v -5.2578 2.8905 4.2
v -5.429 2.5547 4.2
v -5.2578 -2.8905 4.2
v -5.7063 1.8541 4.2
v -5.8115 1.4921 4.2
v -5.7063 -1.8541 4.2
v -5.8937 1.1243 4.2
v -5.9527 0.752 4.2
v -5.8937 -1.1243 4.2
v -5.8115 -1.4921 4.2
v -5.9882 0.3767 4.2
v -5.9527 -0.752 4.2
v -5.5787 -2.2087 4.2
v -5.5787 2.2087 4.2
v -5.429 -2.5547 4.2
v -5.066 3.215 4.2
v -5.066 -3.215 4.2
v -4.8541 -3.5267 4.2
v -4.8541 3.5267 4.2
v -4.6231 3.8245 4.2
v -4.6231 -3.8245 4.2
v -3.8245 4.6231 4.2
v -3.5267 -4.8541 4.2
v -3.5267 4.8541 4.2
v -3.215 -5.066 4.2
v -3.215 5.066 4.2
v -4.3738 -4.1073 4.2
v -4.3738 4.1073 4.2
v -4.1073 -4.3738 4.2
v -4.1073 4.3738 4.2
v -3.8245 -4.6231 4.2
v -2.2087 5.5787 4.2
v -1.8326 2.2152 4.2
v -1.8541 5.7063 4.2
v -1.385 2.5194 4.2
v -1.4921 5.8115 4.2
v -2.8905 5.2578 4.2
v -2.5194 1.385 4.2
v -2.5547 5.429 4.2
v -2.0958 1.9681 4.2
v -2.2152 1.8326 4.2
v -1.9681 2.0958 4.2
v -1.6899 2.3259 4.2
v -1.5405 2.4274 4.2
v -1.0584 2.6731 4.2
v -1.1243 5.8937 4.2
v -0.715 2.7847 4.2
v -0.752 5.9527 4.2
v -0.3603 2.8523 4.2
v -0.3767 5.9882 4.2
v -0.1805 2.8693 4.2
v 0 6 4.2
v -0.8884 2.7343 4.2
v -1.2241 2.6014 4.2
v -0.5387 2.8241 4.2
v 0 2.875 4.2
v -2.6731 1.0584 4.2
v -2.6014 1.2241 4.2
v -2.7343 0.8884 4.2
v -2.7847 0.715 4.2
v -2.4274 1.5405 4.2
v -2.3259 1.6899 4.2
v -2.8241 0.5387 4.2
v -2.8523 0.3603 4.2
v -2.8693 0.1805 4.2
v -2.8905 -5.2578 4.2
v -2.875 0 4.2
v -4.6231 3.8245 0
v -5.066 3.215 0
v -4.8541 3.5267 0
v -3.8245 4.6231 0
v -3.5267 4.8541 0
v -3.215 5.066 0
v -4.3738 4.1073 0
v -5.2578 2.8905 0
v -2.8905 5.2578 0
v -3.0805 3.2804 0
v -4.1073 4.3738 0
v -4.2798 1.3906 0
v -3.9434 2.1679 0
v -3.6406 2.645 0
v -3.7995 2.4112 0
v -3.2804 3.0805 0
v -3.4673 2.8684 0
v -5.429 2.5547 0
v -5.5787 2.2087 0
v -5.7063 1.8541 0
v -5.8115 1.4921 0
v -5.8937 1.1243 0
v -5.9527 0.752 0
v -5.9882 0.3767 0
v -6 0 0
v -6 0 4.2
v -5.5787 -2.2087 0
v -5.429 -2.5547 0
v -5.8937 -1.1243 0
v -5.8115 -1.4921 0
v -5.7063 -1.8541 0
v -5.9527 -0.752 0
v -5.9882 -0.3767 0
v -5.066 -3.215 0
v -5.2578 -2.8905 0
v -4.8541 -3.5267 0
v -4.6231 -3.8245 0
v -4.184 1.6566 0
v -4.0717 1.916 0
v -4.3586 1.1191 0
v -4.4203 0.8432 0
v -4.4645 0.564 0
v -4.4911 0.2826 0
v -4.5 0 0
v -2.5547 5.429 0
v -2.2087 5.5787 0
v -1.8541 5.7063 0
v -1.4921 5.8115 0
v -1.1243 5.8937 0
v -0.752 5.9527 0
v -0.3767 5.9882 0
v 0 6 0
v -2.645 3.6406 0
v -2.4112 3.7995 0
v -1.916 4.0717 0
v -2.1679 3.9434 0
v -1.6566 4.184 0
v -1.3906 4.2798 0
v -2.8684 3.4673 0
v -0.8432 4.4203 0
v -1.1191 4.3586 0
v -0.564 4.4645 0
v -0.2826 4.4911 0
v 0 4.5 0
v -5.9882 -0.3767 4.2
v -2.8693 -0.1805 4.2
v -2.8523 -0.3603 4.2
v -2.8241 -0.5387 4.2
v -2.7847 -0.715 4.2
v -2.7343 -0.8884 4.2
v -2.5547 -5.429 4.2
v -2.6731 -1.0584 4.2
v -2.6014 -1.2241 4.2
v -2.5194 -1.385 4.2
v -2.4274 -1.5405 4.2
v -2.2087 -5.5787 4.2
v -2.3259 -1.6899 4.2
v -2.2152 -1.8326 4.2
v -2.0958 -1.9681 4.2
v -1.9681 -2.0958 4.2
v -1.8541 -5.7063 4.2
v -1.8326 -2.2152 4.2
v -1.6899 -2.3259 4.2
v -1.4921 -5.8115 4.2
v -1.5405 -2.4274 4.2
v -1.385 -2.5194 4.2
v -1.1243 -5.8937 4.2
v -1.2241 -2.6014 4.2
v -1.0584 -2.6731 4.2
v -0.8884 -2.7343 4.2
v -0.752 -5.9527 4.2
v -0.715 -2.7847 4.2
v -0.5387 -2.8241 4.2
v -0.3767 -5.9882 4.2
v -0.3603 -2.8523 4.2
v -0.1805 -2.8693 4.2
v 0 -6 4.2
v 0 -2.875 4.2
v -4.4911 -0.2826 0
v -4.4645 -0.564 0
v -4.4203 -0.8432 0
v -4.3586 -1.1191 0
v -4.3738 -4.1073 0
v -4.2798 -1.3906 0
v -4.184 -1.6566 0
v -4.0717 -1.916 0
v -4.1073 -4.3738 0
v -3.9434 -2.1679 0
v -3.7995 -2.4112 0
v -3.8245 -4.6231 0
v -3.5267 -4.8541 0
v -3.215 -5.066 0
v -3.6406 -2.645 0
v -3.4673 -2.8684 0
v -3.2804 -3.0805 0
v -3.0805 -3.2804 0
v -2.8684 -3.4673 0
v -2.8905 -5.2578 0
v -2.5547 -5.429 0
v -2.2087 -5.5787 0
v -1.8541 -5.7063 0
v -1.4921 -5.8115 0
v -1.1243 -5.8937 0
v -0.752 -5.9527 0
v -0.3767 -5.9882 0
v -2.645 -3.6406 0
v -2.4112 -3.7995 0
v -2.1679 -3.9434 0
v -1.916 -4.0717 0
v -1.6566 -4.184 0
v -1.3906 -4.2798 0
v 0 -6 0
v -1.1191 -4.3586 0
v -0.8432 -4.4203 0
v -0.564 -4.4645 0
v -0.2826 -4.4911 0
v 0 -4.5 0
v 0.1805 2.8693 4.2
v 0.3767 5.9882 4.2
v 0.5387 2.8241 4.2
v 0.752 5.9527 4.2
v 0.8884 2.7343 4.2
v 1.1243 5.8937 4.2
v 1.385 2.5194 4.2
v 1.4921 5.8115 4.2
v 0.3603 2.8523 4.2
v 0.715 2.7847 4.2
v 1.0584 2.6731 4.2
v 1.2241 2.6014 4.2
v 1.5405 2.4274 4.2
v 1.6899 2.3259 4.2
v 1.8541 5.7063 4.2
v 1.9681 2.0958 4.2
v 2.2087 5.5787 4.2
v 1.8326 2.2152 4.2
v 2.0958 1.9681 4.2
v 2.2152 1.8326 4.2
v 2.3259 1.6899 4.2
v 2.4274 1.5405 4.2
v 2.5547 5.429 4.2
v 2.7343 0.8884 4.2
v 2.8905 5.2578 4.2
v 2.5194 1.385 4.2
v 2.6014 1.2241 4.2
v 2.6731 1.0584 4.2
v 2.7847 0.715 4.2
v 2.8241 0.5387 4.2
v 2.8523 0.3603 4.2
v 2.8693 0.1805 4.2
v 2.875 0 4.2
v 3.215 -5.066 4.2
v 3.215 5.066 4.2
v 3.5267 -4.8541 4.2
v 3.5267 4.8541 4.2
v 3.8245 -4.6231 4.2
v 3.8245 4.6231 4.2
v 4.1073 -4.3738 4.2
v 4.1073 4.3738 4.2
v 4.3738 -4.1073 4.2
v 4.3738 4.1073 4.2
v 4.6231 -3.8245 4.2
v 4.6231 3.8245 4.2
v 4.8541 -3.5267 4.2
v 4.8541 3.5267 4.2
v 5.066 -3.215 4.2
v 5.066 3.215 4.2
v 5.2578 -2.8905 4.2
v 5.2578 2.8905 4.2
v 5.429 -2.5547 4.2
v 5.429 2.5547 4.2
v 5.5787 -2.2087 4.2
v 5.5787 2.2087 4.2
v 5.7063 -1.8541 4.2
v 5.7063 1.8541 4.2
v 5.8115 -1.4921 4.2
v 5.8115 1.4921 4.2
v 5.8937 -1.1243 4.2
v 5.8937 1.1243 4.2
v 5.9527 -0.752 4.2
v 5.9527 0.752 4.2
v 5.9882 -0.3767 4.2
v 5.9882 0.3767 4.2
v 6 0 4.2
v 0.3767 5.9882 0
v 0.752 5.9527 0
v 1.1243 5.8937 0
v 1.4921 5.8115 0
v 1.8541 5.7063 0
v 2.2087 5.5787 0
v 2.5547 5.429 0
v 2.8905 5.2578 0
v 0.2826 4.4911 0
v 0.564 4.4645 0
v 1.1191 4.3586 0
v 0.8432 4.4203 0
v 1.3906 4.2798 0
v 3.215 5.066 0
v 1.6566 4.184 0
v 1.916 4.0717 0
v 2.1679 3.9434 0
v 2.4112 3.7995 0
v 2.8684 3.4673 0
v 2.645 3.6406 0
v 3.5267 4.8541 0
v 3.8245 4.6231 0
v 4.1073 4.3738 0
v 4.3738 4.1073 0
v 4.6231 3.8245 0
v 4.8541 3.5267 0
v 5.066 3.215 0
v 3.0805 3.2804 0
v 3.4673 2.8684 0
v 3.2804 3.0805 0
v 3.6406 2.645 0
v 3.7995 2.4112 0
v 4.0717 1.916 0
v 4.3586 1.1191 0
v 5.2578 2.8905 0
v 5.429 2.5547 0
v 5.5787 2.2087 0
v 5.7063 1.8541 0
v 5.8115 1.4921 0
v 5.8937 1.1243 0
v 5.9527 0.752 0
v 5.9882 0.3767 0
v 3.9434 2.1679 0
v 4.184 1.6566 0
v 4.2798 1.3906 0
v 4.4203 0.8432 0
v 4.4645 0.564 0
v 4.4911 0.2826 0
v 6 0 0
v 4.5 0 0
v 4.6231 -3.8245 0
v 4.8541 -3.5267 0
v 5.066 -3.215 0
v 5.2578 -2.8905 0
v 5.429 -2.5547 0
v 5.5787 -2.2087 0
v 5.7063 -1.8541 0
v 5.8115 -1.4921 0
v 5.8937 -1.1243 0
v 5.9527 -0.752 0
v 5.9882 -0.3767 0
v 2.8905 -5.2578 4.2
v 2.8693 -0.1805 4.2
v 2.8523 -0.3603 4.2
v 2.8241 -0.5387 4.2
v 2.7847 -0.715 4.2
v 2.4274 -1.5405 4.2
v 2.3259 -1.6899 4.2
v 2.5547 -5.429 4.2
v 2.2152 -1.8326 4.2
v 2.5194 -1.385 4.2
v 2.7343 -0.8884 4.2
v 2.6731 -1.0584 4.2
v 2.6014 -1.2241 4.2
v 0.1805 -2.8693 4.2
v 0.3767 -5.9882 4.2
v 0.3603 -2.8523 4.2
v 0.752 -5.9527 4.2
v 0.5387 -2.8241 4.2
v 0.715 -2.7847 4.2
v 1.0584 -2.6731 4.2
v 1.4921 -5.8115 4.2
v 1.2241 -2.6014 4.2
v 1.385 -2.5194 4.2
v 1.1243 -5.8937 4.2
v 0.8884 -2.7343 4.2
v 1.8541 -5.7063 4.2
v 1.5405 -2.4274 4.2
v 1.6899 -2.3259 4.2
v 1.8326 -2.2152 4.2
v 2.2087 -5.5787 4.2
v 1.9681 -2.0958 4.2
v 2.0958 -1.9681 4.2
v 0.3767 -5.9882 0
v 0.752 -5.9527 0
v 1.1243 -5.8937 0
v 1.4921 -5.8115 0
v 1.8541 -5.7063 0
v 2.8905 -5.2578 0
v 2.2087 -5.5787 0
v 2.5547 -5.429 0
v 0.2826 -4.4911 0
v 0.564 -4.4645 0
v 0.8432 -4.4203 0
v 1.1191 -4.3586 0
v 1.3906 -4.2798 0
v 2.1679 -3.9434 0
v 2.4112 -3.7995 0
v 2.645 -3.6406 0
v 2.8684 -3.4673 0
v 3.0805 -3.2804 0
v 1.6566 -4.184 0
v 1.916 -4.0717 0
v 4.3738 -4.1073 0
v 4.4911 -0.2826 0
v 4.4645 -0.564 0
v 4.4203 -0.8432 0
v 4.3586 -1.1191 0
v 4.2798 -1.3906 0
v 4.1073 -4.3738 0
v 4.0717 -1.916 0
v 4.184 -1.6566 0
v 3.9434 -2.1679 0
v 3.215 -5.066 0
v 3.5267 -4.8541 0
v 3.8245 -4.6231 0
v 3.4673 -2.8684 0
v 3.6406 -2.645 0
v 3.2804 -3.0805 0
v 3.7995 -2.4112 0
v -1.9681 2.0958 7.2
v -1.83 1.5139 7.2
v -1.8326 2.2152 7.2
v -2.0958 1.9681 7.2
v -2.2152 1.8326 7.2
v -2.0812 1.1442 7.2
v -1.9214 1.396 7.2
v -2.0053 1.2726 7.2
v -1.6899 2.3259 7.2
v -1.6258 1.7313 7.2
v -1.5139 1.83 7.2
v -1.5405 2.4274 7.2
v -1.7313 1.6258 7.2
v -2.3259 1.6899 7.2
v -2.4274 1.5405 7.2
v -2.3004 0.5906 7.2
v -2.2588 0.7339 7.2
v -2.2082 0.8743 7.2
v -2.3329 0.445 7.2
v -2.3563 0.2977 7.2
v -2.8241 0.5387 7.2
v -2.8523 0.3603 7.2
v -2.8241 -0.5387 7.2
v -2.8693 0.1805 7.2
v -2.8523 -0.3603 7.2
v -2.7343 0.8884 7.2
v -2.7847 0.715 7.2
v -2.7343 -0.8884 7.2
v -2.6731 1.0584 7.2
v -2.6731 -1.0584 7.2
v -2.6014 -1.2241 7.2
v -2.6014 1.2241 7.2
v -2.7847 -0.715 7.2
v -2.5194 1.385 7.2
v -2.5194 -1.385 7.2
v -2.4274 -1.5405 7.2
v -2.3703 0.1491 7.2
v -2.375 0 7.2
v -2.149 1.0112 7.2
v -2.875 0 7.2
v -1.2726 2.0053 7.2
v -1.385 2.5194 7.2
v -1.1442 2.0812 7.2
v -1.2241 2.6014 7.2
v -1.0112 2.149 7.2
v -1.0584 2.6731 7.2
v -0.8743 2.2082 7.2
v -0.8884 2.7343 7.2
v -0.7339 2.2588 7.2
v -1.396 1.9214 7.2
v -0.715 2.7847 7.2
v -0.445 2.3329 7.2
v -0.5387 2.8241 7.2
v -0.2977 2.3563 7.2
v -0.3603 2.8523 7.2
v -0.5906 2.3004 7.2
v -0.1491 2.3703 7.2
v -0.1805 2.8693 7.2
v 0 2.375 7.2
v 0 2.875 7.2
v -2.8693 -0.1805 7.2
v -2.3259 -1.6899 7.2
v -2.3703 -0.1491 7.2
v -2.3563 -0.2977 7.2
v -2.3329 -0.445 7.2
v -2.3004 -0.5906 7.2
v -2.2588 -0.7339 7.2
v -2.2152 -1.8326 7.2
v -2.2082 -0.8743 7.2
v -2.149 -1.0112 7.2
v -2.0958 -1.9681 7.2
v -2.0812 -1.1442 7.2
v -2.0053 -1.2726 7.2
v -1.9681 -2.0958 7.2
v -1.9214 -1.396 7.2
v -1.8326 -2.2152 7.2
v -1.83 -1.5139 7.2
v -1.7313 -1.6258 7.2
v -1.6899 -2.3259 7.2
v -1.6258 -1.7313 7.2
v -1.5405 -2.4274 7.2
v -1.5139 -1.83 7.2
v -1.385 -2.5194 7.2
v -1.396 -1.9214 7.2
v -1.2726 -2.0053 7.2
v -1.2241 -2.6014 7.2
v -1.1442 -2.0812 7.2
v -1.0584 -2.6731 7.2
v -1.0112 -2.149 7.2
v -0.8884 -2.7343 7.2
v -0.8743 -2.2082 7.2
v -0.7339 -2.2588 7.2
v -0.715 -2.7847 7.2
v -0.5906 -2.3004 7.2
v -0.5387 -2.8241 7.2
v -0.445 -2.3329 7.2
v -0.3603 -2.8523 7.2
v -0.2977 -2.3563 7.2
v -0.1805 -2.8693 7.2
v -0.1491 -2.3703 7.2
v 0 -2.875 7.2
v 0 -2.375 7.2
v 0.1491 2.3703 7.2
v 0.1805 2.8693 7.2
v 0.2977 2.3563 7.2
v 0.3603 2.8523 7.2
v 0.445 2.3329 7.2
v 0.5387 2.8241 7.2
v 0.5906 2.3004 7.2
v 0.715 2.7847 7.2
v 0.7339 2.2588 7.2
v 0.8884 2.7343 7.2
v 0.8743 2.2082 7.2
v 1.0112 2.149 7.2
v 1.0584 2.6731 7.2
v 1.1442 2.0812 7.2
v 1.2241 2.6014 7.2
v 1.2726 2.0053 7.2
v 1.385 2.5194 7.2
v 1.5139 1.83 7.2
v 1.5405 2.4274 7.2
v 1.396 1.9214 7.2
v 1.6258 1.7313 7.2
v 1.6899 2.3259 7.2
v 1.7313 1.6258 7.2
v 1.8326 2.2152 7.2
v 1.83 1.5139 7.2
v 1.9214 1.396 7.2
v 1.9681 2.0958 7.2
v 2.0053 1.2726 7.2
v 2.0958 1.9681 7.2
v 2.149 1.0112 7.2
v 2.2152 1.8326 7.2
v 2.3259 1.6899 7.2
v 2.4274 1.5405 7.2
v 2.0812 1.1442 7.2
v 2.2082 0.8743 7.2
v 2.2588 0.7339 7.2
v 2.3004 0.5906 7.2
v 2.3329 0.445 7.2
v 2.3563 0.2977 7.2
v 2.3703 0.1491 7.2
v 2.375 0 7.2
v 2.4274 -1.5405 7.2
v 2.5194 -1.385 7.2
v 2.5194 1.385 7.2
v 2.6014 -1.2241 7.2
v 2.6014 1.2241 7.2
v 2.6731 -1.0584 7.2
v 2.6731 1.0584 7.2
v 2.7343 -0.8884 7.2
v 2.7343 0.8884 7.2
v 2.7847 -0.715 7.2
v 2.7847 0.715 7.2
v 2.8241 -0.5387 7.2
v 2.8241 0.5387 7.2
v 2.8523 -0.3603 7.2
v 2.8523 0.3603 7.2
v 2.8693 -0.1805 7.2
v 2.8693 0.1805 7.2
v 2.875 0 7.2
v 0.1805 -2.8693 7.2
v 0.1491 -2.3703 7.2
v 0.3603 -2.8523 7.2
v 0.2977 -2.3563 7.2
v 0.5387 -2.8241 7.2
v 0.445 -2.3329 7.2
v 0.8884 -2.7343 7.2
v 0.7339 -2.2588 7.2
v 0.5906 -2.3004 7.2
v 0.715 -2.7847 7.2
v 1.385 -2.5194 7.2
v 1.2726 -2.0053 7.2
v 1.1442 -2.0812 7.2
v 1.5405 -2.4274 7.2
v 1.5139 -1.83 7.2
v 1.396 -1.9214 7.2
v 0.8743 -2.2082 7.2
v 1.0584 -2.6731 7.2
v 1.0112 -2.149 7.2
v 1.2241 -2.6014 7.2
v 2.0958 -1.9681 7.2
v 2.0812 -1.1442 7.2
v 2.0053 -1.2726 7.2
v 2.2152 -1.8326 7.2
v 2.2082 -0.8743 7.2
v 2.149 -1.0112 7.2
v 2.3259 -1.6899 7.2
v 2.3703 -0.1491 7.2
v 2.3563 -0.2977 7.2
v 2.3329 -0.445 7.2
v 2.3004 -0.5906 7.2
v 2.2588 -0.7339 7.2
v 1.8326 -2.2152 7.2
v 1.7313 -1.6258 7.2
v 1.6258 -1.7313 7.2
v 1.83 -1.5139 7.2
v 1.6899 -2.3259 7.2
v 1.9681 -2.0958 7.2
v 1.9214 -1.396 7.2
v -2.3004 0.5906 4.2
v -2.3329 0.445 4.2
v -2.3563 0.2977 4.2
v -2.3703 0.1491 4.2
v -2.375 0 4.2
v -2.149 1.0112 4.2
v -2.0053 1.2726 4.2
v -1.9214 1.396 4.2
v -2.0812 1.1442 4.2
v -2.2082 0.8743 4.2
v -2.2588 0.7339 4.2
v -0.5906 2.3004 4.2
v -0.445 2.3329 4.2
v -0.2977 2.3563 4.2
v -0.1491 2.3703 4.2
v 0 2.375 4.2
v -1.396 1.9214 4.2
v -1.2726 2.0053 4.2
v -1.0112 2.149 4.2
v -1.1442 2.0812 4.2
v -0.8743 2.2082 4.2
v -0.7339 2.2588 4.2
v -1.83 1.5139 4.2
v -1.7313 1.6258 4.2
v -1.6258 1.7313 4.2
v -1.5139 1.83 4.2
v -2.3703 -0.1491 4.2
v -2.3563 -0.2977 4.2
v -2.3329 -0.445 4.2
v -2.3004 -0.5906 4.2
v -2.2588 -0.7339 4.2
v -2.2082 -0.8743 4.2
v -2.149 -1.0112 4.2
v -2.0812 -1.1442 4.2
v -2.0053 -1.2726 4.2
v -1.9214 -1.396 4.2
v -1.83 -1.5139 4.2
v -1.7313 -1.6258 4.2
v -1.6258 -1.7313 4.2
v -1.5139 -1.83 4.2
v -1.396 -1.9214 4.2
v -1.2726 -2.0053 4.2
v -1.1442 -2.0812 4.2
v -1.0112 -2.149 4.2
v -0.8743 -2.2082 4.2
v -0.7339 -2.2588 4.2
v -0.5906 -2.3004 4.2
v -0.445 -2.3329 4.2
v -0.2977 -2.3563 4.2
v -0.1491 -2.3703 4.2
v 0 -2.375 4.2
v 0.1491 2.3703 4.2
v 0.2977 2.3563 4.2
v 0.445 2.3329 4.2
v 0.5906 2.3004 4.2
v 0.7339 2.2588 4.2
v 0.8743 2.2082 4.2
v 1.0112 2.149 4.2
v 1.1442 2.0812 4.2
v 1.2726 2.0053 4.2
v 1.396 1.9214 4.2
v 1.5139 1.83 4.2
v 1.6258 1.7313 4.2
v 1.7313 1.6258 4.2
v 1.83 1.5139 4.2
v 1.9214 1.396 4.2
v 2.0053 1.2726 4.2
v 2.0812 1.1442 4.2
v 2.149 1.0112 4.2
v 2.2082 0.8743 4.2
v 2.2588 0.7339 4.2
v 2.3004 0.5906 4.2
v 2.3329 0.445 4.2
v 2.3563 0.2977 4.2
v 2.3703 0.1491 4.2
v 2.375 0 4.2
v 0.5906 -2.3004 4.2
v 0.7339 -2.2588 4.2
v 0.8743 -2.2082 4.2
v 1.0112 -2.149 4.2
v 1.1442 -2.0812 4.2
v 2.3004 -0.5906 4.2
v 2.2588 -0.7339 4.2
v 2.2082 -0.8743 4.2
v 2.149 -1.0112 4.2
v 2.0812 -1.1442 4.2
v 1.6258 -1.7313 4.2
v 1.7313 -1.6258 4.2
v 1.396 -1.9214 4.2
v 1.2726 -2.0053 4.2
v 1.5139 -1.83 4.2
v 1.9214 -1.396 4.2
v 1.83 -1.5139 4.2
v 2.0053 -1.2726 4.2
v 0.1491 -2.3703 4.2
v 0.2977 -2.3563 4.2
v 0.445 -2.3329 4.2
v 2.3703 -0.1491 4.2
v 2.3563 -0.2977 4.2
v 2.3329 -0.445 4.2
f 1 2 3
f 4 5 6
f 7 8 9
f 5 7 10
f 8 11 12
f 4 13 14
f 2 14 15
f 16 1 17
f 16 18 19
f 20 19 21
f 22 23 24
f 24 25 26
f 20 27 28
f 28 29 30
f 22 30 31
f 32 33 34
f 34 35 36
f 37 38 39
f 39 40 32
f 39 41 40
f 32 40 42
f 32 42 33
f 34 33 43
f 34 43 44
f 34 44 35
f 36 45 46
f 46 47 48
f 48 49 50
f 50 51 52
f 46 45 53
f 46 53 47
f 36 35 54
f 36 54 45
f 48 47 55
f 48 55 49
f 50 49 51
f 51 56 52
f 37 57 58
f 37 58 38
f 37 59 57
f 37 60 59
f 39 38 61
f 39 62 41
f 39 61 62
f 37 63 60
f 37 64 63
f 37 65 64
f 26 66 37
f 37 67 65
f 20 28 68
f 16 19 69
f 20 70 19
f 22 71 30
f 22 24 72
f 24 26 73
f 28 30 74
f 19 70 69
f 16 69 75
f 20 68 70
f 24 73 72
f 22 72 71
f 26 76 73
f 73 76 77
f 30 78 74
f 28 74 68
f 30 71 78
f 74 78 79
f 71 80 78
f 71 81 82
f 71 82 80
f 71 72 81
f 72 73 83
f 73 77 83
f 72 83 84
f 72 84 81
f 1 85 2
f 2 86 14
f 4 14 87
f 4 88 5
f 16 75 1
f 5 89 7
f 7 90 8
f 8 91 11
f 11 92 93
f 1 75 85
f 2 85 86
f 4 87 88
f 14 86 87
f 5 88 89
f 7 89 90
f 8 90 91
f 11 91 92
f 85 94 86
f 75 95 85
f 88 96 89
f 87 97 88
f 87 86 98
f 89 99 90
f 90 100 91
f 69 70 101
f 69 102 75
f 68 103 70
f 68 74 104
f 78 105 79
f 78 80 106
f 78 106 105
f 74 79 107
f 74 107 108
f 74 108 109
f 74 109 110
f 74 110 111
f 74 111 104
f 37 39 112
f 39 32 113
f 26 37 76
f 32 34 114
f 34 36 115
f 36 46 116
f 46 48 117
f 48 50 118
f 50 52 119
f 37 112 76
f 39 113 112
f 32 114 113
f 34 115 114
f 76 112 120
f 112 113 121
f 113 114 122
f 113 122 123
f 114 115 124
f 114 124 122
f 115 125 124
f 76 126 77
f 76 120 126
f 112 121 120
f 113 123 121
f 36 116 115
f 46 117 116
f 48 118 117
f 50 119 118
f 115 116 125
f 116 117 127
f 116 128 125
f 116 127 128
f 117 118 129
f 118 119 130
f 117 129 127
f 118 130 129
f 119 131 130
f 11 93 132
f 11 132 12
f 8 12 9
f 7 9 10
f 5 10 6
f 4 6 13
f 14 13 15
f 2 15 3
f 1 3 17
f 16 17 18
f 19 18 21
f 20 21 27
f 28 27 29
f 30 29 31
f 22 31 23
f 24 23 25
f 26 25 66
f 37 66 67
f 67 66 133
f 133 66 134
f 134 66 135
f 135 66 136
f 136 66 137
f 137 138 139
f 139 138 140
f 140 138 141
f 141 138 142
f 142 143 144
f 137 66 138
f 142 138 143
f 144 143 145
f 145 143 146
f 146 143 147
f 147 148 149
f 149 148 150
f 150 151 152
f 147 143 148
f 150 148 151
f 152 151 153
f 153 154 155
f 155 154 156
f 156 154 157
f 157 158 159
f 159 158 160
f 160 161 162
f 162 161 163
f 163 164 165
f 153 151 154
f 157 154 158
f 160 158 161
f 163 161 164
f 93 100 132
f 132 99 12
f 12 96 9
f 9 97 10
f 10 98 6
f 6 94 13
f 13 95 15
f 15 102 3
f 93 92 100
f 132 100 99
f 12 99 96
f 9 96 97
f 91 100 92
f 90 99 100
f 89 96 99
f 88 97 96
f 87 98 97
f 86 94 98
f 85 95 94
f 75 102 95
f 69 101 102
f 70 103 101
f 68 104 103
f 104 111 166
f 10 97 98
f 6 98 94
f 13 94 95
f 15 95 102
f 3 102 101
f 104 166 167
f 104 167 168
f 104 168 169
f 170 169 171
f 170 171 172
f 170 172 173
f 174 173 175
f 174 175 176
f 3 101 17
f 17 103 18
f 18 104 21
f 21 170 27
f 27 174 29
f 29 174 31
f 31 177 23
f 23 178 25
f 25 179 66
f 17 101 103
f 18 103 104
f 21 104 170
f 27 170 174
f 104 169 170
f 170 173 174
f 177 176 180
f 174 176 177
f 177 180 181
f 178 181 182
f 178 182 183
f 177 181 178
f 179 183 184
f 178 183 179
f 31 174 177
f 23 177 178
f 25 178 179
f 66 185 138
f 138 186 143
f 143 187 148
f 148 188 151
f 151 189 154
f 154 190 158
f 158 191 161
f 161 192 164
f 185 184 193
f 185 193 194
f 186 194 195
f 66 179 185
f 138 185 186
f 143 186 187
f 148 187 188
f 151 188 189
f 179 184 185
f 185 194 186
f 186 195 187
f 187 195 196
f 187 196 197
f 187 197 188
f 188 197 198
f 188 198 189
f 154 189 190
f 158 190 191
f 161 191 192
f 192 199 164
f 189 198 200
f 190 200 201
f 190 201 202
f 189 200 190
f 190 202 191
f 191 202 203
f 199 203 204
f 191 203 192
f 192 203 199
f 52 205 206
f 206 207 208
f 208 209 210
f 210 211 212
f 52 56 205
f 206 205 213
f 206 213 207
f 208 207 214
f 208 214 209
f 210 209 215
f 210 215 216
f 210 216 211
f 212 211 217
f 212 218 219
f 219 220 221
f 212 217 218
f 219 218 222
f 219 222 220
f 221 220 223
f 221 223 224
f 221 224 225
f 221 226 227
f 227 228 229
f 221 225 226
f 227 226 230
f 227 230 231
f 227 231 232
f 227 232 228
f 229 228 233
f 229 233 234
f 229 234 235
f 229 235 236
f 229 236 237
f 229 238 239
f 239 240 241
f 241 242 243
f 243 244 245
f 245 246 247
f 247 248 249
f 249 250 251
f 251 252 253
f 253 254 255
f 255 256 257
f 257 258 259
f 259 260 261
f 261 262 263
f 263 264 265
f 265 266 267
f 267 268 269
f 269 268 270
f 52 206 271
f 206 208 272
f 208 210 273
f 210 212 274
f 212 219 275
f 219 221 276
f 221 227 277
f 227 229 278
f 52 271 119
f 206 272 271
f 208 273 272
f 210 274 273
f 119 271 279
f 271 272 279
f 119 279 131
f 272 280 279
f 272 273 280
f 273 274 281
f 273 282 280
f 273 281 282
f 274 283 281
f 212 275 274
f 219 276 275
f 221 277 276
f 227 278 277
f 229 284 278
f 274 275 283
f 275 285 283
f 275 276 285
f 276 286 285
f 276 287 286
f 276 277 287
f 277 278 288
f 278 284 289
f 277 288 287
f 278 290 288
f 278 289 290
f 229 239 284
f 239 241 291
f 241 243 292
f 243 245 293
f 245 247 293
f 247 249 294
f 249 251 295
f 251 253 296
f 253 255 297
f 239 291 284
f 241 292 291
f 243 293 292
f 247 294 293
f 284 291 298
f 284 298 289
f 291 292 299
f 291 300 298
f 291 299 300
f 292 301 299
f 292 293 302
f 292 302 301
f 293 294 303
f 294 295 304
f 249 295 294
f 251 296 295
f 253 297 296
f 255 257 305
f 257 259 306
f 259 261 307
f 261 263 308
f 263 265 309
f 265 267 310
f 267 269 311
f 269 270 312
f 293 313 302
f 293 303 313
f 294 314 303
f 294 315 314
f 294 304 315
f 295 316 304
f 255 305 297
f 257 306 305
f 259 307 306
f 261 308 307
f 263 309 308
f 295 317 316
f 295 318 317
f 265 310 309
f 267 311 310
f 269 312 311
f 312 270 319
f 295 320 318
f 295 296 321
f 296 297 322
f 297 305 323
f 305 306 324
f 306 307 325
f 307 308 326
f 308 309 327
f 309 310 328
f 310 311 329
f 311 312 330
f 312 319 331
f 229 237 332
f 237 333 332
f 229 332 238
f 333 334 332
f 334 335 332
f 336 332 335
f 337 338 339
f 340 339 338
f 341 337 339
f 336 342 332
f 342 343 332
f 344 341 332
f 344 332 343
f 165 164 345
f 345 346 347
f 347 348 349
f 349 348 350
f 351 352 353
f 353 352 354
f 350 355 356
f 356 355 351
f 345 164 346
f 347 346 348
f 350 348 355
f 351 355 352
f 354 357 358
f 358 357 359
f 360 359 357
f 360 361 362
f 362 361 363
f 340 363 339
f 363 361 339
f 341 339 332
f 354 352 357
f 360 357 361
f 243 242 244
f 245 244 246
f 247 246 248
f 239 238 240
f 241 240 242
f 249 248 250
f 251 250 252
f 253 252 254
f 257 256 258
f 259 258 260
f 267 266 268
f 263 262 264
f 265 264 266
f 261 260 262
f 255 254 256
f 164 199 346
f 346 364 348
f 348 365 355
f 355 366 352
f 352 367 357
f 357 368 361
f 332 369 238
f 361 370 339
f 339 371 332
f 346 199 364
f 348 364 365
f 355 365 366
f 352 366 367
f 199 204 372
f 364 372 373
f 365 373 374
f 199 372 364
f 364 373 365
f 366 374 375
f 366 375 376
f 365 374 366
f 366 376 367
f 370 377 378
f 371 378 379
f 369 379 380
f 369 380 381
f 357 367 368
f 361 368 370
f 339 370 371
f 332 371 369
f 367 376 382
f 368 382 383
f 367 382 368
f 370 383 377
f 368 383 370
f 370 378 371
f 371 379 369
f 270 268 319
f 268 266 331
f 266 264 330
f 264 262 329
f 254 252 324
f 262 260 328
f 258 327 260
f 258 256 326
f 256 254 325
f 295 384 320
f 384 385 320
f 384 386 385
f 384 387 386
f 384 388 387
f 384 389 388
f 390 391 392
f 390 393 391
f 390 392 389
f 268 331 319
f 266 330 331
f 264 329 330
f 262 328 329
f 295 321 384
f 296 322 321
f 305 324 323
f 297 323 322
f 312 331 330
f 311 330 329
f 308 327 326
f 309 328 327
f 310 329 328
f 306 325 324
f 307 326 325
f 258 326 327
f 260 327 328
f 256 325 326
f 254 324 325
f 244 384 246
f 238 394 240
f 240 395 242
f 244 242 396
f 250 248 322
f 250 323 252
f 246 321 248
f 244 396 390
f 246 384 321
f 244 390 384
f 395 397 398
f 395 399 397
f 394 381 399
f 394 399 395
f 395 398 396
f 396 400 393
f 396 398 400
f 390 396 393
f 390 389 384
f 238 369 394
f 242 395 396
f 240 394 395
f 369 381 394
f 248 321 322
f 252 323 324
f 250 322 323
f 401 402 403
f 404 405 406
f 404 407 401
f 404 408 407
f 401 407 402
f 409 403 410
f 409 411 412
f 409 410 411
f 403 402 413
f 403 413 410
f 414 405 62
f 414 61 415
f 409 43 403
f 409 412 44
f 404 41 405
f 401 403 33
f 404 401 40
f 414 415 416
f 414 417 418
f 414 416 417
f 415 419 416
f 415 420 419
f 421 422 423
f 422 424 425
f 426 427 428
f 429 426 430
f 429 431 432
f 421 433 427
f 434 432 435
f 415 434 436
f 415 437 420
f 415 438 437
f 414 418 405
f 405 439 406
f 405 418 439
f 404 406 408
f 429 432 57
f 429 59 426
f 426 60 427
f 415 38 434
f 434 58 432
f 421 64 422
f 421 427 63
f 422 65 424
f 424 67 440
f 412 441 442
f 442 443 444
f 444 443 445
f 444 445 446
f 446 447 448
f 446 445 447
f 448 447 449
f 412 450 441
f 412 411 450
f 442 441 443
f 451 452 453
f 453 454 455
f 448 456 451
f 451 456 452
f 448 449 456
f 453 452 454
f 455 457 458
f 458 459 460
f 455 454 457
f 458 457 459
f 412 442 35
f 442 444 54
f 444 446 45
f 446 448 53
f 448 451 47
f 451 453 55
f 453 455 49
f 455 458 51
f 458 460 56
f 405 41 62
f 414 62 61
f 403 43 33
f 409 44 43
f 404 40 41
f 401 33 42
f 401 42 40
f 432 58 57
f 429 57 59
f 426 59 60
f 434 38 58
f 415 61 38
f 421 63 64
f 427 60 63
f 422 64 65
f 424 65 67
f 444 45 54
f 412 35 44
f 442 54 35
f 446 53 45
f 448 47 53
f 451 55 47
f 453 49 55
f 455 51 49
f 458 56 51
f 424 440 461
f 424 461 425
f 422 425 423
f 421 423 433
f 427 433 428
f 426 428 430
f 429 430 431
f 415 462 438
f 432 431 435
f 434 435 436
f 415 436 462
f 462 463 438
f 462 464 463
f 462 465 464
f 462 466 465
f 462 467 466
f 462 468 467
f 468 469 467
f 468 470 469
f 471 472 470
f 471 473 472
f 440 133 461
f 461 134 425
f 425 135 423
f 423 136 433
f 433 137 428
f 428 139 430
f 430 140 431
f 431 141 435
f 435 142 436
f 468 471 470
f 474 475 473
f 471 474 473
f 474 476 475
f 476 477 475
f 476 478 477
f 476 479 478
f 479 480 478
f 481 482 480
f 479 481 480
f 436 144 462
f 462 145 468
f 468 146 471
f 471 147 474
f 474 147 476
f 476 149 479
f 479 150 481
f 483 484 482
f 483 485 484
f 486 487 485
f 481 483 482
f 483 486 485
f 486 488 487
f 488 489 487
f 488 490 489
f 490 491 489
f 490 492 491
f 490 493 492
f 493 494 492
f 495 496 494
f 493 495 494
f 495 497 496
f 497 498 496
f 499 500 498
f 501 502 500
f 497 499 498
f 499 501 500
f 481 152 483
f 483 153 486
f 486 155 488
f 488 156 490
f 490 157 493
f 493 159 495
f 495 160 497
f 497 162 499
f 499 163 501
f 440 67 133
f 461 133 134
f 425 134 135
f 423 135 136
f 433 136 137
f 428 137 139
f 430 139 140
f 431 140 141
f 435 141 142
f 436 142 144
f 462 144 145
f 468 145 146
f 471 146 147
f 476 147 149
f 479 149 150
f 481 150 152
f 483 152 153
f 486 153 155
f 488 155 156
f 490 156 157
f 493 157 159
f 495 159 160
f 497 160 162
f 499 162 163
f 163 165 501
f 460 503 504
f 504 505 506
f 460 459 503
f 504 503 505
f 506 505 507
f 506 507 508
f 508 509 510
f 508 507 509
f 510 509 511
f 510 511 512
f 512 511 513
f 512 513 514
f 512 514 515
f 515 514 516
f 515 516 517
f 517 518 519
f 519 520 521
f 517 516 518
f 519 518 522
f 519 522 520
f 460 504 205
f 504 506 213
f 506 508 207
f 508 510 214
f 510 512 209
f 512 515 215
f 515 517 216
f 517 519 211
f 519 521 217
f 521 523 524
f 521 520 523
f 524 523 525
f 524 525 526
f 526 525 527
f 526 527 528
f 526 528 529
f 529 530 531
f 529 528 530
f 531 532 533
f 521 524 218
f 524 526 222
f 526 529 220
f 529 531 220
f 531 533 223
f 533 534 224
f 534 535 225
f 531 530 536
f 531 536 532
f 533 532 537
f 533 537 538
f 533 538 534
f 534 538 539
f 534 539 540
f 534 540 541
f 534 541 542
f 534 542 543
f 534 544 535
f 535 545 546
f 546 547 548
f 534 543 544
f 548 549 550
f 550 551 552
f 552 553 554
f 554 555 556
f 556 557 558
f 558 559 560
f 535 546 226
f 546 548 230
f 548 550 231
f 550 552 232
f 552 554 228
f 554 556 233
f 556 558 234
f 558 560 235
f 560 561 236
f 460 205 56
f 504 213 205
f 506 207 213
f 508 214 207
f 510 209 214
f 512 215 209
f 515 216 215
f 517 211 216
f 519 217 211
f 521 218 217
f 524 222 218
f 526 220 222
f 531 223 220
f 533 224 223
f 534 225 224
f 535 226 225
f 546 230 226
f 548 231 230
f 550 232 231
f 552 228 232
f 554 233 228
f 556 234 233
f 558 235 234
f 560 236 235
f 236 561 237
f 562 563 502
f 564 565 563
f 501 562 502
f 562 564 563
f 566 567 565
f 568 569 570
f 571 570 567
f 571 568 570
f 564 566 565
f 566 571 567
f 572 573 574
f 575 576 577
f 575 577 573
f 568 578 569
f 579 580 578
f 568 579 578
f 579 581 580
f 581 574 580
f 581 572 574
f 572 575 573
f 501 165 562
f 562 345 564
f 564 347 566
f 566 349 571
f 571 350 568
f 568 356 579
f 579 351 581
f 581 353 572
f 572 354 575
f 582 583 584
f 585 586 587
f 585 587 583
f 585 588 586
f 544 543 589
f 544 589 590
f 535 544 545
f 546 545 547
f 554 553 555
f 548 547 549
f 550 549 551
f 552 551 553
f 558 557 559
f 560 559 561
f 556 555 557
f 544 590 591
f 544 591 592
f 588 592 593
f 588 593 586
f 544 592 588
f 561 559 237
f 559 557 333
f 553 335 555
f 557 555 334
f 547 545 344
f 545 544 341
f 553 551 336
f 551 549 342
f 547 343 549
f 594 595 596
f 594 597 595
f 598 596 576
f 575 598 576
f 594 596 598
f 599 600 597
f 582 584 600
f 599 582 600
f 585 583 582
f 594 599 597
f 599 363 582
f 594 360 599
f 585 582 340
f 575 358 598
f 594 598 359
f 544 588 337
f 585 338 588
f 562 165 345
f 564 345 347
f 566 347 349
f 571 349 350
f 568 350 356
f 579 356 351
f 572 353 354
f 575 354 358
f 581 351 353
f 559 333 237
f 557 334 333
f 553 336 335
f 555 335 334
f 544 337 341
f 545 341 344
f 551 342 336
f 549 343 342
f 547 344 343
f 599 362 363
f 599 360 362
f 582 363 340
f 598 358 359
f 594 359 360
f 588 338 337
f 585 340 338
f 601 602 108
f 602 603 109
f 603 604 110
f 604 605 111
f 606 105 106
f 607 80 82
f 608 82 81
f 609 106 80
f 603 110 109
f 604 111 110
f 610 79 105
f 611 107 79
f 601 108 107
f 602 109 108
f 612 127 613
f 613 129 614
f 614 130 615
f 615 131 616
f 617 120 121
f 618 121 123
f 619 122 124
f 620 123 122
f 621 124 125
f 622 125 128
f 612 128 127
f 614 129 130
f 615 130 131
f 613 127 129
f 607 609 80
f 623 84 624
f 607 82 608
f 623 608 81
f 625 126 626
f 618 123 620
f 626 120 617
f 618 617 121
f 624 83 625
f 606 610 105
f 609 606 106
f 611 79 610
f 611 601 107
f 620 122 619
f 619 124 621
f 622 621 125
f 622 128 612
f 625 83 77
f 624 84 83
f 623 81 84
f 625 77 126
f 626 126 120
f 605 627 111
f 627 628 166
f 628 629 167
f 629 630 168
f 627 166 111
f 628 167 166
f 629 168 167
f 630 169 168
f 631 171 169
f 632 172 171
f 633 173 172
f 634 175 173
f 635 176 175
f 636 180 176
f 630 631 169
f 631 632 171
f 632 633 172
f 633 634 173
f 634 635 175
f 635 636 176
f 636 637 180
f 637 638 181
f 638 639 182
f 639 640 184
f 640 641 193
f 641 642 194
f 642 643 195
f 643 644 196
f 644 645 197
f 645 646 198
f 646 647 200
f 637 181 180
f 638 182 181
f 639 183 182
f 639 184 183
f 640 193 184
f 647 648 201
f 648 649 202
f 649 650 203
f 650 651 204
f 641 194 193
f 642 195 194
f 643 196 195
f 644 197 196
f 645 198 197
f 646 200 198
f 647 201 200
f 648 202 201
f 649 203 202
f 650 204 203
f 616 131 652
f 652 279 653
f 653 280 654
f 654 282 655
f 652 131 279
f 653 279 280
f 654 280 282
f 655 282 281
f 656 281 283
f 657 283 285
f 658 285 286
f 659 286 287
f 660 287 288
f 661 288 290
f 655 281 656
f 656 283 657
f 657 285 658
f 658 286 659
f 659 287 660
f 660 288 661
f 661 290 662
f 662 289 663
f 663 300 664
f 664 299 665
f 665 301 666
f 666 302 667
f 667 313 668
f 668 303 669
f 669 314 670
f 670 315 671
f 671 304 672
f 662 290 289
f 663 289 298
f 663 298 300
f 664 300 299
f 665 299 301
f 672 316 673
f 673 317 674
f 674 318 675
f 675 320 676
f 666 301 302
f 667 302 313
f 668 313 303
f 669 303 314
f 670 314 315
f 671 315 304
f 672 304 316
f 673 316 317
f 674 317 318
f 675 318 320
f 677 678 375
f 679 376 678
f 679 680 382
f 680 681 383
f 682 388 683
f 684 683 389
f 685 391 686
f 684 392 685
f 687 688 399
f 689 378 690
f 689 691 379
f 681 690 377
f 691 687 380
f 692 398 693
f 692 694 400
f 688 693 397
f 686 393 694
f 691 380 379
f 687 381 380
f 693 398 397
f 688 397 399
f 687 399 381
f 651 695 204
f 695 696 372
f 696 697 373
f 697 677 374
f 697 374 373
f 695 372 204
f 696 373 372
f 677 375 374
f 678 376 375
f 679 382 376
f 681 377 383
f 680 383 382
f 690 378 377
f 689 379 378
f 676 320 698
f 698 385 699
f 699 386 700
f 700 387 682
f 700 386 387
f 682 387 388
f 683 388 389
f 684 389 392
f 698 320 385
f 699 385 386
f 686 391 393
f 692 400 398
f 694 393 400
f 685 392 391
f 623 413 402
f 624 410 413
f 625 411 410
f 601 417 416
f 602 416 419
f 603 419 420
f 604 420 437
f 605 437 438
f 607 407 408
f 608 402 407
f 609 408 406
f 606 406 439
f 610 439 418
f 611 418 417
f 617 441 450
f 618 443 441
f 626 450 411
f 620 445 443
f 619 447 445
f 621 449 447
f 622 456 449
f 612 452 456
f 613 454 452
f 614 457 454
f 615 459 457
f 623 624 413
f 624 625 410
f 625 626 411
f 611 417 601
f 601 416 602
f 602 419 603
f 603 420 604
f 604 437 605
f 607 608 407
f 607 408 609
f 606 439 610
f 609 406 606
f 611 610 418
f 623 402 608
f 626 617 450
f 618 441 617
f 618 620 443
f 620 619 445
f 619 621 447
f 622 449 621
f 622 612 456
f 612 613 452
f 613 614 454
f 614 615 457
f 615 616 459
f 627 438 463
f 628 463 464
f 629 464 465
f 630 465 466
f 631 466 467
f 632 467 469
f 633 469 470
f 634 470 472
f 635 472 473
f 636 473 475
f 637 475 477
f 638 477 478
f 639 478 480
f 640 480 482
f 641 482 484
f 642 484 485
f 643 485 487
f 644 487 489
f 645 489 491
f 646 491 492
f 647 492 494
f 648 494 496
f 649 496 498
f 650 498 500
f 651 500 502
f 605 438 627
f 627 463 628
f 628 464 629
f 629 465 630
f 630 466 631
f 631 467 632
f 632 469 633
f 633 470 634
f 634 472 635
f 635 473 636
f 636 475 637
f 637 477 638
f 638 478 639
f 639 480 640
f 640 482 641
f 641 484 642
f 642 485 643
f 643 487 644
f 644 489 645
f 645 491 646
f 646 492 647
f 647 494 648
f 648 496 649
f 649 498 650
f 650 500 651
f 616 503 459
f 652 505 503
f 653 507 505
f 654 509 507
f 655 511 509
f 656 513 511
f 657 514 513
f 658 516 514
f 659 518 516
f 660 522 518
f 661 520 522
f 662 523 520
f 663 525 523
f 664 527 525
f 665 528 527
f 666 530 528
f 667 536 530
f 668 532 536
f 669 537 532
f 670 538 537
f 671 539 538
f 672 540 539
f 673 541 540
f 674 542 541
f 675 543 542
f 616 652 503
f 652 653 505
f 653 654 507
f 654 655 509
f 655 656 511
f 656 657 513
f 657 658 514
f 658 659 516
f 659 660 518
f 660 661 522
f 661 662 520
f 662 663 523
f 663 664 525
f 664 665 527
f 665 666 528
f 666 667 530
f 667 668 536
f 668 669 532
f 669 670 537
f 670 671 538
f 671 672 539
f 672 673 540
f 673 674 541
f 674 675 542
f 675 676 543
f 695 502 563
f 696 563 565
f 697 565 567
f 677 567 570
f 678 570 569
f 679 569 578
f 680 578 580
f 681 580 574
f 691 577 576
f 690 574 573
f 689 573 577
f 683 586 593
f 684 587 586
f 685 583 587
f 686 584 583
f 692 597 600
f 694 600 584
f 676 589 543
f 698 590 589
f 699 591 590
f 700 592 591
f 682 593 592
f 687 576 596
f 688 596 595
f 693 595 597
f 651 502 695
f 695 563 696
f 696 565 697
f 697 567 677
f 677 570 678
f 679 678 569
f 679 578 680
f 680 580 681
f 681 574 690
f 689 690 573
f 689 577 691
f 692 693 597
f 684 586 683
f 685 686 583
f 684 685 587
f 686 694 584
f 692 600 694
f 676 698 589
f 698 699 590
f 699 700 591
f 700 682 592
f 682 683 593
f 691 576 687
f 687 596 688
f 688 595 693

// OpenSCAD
$fn = 100;

translate([0, 0, 4.2]) rotate([180, 0, 0])
difference() {
    union() {
        cylinder(h=4.2, d=12);
        translate([0, 0, -3]) cylinder(h=3, d=5.75);
    }
    translate([0, 0, 0]) cylinder(h=4.2, r1=2.375, r2=4.5);
    translate([0, 0, -4]) cylinder(h=9.2, r=2.375);
}
